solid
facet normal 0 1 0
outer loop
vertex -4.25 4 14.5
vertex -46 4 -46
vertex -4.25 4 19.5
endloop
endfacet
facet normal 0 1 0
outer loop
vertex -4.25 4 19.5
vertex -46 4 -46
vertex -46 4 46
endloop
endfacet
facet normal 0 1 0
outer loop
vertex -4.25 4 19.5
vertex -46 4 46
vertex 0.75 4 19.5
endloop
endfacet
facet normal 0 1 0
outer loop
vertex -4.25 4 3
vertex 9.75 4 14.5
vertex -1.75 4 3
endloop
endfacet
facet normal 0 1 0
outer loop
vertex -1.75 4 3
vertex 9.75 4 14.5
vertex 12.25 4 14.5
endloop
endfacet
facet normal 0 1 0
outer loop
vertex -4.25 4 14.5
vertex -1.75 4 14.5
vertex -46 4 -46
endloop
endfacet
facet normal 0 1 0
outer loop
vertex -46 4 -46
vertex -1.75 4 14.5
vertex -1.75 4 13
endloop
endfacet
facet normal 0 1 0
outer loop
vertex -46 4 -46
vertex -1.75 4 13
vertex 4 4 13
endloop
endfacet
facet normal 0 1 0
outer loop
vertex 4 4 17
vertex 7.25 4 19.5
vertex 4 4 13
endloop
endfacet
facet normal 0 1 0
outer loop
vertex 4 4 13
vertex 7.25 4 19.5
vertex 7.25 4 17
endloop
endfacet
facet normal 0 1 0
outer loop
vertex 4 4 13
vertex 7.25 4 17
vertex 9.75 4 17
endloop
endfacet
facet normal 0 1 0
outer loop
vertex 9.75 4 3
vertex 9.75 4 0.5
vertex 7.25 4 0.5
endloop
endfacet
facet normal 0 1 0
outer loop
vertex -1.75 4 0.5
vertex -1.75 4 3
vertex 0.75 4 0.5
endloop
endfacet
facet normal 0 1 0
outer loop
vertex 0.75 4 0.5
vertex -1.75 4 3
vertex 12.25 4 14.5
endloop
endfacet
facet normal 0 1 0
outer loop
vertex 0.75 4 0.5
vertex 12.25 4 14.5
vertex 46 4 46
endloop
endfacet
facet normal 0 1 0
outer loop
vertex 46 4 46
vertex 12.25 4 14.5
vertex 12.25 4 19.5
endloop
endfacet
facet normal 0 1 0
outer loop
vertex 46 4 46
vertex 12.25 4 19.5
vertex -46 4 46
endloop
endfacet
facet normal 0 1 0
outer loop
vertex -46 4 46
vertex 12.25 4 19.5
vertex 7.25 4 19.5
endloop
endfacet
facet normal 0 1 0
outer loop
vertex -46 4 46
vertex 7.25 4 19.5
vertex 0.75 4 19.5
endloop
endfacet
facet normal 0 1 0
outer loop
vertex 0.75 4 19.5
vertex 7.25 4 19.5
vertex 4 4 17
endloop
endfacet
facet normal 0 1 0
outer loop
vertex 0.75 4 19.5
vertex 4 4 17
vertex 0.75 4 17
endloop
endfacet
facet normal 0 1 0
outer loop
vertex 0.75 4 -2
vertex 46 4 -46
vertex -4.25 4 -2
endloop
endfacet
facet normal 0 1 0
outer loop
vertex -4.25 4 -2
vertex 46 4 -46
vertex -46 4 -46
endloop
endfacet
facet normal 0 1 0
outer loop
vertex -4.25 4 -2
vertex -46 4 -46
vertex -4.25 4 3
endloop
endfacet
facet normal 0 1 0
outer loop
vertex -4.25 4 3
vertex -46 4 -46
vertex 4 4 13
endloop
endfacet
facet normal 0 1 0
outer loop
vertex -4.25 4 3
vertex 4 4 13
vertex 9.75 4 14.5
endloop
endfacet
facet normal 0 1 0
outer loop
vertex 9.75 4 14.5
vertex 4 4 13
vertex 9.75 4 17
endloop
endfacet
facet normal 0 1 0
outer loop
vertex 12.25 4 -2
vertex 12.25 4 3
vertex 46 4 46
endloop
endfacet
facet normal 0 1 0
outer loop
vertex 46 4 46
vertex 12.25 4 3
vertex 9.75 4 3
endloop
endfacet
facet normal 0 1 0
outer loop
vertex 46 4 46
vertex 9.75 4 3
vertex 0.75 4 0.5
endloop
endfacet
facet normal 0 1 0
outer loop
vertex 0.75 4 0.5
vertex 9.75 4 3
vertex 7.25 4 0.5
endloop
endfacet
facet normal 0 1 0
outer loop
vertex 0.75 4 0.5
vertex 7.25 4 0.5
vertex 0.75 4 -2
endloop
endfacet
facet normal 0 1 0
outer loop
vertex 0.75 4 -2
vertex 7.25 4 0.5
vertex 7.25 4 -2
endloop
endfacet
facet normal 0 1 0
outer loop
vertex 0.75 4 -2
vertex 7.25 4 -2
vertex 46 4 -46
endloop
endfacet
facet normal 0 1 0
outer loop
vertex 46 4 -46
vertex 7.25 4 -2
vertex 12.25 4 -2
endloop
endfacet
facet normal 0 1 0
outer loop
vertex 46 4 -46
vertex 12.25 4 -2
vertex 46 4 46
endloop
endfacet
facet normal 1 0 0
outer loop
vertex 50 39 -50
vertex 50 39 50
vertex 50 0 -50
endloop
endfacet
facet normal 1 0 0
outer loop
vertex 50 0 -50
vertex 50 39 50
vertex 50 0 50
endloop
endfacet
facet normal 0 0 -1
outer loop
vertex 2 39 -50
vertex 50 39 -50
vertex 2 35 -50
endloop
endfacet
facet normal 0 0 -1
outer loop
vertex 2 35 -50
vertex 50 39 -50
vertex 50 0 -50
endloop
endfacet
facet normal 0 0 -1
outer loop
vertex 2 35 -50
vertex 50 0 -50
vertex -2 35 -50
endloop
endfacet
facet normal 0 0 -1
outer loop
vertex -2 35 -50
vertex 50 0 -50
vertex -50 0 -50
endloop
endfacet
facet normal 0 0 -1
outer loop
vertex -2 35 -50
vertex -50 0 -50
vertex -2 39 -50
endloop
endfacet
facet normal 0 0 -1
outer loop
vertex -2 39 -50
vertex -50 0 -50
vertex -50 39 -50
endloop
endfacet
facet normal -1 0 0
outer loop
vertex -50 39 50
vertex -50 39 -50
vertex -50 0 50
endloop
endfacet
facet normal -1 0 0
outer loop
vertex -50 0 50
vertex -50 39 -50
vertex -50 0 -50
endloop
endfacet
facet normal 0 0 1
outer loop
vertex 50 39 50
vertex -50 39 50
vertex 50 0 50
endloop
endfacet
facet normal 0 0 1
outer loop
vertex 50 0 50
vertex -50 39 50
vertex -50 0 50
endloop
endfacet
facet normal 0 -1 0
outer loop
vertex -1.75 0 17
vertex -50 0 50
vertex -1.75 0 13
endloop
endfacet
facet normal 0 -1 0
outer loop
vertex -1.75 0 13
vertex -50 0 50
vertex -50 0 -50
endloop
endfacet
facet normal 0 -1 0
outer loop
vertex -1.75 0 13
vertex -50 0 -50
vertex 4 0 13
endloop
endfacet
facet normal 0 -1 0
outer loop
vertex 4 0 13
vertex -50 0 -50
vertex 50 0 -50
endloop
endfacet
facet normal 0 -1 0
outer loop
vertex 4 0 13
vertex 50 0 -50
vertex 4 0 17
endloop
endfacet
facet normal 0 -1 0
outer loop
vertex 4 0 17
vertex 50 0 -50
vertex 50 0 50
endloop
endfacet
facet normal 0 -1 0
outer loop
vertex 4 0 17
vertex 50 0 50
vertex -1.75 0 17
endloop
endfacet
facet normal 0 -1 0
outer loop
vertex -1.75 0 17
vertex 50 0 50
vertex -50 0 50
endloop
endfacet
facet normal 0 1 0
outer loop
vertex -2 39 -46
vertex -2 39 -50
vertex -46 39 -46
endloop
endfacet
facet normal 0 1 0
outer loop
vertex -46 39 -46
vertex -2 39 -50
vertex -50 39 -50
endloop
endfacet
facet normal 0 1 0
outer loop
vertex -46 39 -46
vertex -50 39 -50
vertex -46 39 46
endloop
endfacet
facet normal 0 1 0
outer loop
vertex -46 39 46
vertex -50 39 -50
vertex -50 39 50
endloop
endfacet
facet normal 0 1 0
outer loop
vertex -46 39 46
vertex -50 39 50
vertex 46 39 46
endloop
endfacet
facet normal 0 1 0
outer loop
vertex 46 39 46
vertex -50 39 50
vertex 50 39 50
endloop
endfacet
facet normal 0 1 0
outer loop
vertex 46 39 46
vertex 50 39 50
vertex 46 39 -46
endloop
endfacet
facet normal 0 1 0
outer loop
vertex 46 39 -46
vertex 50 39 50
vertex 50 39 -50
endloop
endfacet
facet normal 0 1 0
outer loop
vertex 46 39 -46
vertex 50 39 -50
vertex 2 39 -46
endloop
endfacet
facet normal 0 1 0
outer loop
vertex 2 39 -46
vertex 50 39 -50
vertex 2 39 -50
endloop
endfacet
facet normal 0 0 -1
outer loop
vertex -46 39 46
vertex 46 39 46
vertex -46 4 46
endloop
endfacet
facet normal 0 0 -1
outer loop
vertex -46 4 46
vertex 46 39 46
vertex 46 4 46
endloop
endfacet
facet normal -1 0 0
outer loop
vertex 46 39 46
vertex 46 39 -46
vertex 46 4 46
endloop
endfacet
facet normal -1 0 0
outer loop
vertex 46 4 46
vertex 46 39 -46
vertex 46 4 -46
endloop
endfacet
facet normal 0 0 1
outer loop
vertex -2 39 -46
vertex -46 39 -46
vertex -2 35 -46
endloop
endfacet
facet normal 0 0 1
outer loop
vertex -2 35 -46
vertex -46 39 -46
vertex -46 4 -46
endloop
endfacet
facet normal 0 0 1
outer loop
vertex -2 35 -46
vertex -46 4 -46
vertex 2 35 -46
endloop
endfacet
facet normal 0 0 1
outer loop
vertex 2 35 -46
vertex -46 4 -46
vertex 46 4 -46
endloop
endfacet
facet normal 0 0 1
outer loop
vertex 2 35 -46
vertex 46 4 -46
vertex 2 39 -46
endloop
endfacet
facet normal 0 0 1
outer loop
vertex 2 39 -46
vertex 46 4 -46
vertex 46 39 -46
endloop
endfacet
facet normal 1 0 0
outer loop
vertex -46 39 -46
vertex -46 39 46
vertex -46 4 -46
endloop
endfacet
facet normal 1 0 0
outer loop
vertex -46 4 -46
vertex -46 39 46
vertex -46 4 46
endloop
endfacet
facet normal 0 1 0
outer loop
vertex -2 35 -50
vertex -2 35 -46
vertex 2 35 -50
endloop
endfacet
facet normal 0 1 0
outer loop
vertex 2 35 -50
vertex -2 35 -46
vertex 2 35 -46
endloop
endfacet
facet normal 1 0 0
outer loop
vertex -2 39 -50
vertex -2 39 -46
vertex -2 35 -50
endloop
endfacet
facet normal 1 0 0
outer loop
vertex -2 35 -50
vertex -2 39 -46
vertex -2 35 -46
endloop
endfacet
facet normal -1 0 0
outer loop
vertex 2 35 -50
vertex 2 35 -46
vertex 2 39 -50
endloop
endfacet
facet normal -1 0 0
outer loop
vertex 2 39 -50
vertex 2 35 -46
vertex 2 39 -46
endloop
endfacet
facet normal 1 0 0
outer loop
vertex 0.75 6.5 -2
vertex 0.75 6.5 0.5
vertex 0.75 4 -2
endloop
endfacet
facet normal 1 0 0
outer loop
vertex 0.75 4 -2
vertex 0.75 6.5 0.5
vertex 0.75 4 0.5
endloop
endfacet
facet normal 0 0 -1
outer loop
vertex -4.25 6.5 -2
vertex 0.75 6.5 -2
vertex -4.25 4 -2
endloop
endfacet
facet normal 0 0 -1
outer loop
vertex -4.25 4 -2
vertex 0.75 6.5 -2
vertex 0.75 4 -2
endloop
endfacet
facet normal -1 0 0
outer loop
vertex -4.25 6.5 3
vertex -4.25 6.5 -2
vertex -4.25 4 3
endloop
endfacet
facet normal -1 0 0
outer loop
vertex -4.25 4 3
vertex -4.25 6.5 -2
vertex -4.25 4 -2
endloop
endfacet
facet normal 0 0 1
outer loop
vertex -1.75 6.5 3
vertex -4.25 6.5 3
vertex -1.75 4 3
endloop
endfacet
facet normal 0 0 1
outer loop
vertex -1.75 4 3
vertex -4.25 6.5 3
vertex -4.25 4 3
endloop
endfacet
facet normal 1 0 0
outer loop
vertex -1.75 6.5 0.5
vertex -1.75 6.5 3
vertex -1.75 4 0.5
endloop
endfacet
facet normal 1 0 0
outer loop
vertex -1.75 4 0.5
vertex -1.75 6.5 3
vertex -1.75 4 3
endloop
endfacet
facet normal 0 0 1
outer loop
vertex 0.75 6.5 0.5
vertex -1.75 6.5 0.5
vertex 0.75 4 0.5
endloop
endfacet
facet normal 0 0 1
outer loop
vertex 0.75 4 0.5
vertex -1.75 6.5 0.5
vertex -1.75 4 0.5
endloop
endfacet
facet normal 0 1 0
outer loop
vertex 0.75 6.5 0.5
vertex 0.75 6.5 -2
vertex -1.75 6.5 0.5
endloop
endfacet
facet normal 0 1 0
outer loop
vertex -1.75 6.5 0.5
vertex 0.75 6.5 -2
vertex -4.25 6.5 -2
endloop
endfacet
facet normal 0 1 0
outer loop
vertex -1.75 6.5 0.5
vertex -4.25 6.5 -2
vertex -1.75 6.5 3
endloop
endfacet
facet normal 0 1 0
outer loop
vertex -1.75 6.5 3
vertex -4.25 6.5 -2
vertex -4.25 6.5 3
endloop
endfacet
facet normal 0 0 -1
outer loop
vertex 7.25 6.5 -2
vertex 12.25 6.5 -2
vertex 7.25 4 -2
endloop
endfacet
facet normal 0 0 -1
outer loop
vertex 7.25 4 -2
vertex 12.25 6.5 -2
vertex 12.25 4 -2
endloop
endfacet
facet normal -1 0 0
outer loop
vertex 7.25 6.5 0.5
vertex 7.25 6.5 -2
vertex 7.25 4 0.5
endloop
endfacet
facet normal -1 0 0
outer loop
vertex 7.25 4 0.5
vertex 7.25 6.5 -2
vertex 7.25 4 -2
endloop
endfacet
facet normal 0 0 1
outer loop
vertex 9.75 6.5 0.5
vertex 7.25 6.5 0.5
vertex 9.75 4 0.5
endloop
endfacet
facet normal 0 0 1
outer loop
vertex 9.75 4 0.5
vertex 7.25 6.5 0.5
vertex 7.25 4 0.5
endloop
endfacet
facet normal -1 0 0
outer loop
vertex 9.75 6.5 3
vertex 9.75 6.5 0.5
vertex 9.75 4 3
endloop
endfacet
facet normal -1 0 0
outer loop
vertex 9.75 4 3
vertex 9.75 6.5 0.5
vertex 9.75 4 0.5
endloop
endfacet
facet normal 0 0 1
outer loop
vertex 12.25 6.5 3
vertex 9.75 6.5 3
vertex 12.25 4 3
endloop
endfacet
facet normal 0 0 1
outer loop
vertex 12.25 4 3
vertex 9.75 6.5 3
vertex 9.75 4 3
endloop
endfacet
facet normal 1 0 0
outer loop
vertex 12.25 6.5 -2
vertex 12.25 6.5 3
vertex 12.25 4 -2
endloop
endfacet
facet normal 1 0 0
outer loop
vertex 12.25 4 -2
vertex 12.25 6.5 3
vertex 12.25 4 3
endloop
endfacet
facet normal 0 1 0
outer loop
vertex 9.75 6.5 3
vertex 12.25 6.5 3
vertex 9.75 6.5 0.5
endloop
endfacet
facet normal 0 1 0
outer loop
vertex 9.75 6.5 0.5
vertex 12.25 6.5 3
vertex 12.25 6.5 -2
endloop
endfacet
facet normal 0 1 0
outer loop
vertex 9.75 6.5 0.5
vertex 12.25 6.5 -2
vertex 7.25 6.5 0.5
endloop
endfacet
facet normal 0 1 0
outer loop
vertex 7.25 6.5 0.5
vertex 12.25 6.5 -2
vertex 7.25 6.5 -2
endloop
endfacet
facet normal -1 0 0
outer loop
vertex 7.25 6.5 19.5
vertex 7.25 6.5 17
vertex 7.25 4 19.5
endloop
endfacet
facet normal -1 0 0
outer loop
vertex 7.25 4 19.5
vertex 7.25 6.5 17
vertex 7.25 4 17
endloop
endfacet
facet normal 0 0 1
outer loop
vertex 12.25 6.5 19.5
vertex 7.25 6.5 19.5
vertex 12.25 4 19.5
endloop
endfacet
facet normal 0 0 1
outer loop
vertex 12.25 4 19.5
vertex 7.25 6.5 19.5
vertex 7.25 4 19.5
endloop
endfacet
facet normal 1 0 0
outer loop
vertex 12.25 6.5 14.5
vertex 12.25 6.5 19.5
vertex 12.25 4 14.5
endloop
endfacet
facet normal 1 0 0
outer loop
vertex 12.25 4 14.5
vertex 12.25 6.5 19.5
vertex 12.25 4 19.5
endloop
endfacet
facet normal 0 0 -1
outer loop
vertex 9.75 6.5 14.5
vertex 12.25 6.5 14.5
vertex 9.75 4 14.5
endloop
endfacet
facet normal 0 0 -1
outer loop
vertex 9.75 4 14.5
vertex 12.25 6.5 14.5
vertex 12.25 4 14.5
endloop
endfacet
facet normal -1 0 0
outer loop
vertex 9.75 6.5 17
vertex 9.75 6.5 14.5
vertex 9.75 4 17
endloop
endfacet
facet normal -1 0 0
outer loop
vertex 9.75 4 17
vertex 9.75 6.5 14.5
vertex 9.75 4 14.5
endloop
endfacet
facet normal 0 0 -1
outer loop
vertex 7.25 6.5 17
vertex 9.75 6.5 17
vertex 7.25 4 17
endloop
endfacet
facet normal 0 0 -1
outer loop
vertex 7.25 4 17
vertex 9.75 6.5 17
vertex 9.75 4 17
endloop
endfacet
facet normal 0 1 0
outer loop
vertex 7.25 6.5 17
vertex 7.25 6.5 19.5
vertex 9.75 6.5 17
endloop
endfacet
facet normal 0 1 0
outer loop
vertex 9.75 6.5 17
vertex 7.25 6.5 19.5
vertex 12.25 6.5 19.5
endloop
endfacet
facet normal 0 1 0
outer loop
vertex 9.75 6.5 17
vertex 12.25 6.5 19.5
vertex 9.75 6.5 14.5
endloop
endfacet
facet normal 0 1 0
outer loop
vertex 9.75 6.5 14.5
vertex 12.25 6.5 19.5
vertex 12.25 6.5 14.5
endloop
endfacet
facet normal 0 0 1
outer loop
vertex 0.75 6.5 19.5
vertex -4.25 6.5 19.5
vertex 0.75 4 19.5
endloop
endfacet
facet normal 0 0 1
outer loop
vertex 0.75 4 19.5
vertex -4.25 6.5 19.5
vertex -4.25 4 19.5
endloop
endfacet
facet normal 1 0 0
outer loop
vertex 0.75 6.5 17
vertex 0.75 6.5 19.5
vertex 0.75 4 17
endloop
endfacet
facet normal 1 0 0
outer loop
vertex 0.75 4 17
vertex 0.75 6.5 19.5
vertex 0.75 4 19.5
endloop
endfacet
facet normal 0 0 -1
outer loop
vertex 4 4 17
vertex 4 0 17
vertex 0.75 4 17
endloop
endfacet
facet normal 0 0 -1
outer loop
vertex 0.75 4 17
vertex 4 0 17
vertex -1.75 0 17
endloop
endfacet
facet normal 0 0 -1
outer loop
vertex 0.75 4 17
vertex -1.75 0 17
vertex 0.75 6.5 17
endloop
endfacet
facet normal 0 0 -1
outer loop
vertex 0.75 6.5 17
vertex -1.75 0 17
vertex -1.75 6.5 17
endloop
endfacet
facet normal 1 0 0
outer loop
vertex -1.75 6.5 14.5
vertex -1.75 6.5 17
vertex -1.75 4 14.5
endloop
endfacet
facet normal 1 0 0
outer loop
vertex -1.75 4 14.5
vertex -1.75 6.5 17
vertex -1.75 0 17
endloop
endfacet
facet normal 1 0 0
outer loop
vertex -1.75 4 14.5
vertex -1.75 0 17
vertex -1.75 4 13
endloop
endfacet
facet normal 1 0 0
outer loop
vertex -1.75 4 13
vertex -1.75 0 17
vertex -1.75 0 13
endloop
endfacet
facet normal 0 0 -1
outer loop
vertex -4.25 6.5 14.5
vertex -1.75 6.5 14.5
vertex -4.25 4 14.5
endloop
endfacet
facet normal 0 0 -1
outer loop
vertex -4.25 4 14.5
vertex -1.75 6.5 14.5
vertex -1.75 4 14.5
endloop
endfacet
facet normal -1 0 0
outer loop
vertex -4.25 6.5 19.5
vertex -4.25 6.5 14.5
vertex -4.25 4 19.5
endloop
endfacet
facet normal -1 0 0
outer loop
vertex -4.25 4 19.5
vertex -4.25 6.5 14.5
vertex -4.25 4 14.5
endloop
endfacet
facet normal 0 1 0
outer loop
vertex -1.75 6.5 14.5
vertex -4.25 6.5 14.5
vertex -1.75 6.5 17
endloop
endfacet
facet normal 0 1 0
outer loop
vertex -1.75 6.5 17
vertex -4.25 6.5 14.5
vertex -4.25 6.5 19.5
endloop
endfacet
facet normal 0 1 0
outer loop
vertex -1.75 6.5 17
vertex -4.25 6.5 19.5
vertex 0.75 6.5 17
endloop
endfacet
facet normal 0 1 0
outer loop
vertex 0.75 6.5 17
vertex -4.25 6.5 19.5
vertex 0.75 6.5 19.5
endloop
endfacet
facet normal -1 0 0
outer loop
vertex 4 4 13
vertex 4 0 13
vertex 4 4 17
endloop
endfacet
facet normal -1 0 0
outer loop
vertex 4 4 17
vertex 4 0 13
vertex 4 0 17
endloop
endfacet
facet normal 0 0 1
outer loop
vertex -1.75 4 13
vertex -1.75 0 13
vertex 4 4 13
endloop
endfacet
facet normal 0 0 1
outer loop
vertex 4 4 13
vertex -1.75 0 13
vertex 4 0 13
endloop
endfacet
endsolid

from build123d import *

# Parameters (mm, degrees)
SKETCH1_W           = 100
SKETCH1_H           = 100
BOSS_EXTRUDE1_DEPTH = 4
SKETCH2_W           = 100
SKETCH2_H           = 100
SKETCH2_W_2         = 92
SKETCH2_H_2         = 92
BOSS_EXTRUDE2_DEPTH = 35
SKETCH3_W           = 4
SKETCH3_H           = 4
CUT_EXTRUDE1_DEPTH  = 4
BOSS_EXTRUDE3_DEPTH = 2.5
SKETCH5_W           = 5.75
SKETCH5_H           = 4
CUT_EXTRUDE2_DEPTH  = 4


with BuildPart() as part:
    # Sketch1 → Boss-Extrude1 (new body)
    with BuildSketch(Plane(origin=(0, 0, 0), x_dir=(1, 0, 0), z_dir=(0, 1, 0))):
        Rectangle(SKETCH1_W, SKETCH1_H)
    extrude(amount=BOSS_EXTRUDE1_DEPTH)

    # Sketch2 → Boss-Extrude2 (add)
    with BuildSketch(Plane(origin=(0, 4, 0), x_dir=(1, 0, 0), z_dir=(0, 1, 0))):
        Rectangle(SKETCH2_W, SKETCH2_H)
        Rectangle(SKETCH2_W_2, SKETCH2_H_2, mode=Mode.SUBTRACT)
    extrude(amount=BOSS_EXTRUDE2_DEPTH)

    # Sketch3 → Cut-Extrude1 (cut)
    with BuildSketch(Plane(origin=(0, 0, -50), x_dir=(-1, 0, 0), z_dir=(0, 0, -1))):
        with Locations((0, 37)):
            Rectangle(SKETCH3_W, SKETCH3_H)
    extrude(amount=-CUT_EXTRUDE1_DEPTH, mode=Mode.SUBTRACT)

    # Sketch4 → Boss-Extrude3 (add)
    with BuildSketch(Plane(origin=(0, 4, 0), x_dir=(1, 0, 0), z_dir=(0, 1, 0))):
        Polygon((-1.75, -0.5), (0.75, -0.5), (0.75, 2), (-4.25, 2), (-4.25, -3), (-1.75, -3), align=None)
        Polygon((7.25, -0.5), (9.75, -0.5), (9.75, -3), (12.25, -3), (12.25, 2), (7.25, 2), align=None)
        Polygon((12.25, -14.5), (9.75, -14.5), (9.75, -17), (7.25, -17), (7.25, -19.5), (12.25, -19.5), align=None)
        Polygon((-1.75, -17), (-1.75, -14.5), (-4.25, -14.5), (-4.25, -19.5), (0.75, -19.5), (0.75, -17), align=None)
    extrude(amount=BOSS_EXTRUDE3_DEPTH)

    # Sketch5 → Cut-Extrude2 (cut)
    with BuildSketch(Plane(origin=(0, 4, 0), x_dir=(1, 0, 0), z_dir=(0, 1, 0))):
        with Locations((1.125, -15)):
            Rectangle(SKETCH5_W, SKETCH5_H)
    extrude(amount=-CUT_EXTRUDE2_DEPTH, mode=Mode.SUBTRACT)


solid = part.part
